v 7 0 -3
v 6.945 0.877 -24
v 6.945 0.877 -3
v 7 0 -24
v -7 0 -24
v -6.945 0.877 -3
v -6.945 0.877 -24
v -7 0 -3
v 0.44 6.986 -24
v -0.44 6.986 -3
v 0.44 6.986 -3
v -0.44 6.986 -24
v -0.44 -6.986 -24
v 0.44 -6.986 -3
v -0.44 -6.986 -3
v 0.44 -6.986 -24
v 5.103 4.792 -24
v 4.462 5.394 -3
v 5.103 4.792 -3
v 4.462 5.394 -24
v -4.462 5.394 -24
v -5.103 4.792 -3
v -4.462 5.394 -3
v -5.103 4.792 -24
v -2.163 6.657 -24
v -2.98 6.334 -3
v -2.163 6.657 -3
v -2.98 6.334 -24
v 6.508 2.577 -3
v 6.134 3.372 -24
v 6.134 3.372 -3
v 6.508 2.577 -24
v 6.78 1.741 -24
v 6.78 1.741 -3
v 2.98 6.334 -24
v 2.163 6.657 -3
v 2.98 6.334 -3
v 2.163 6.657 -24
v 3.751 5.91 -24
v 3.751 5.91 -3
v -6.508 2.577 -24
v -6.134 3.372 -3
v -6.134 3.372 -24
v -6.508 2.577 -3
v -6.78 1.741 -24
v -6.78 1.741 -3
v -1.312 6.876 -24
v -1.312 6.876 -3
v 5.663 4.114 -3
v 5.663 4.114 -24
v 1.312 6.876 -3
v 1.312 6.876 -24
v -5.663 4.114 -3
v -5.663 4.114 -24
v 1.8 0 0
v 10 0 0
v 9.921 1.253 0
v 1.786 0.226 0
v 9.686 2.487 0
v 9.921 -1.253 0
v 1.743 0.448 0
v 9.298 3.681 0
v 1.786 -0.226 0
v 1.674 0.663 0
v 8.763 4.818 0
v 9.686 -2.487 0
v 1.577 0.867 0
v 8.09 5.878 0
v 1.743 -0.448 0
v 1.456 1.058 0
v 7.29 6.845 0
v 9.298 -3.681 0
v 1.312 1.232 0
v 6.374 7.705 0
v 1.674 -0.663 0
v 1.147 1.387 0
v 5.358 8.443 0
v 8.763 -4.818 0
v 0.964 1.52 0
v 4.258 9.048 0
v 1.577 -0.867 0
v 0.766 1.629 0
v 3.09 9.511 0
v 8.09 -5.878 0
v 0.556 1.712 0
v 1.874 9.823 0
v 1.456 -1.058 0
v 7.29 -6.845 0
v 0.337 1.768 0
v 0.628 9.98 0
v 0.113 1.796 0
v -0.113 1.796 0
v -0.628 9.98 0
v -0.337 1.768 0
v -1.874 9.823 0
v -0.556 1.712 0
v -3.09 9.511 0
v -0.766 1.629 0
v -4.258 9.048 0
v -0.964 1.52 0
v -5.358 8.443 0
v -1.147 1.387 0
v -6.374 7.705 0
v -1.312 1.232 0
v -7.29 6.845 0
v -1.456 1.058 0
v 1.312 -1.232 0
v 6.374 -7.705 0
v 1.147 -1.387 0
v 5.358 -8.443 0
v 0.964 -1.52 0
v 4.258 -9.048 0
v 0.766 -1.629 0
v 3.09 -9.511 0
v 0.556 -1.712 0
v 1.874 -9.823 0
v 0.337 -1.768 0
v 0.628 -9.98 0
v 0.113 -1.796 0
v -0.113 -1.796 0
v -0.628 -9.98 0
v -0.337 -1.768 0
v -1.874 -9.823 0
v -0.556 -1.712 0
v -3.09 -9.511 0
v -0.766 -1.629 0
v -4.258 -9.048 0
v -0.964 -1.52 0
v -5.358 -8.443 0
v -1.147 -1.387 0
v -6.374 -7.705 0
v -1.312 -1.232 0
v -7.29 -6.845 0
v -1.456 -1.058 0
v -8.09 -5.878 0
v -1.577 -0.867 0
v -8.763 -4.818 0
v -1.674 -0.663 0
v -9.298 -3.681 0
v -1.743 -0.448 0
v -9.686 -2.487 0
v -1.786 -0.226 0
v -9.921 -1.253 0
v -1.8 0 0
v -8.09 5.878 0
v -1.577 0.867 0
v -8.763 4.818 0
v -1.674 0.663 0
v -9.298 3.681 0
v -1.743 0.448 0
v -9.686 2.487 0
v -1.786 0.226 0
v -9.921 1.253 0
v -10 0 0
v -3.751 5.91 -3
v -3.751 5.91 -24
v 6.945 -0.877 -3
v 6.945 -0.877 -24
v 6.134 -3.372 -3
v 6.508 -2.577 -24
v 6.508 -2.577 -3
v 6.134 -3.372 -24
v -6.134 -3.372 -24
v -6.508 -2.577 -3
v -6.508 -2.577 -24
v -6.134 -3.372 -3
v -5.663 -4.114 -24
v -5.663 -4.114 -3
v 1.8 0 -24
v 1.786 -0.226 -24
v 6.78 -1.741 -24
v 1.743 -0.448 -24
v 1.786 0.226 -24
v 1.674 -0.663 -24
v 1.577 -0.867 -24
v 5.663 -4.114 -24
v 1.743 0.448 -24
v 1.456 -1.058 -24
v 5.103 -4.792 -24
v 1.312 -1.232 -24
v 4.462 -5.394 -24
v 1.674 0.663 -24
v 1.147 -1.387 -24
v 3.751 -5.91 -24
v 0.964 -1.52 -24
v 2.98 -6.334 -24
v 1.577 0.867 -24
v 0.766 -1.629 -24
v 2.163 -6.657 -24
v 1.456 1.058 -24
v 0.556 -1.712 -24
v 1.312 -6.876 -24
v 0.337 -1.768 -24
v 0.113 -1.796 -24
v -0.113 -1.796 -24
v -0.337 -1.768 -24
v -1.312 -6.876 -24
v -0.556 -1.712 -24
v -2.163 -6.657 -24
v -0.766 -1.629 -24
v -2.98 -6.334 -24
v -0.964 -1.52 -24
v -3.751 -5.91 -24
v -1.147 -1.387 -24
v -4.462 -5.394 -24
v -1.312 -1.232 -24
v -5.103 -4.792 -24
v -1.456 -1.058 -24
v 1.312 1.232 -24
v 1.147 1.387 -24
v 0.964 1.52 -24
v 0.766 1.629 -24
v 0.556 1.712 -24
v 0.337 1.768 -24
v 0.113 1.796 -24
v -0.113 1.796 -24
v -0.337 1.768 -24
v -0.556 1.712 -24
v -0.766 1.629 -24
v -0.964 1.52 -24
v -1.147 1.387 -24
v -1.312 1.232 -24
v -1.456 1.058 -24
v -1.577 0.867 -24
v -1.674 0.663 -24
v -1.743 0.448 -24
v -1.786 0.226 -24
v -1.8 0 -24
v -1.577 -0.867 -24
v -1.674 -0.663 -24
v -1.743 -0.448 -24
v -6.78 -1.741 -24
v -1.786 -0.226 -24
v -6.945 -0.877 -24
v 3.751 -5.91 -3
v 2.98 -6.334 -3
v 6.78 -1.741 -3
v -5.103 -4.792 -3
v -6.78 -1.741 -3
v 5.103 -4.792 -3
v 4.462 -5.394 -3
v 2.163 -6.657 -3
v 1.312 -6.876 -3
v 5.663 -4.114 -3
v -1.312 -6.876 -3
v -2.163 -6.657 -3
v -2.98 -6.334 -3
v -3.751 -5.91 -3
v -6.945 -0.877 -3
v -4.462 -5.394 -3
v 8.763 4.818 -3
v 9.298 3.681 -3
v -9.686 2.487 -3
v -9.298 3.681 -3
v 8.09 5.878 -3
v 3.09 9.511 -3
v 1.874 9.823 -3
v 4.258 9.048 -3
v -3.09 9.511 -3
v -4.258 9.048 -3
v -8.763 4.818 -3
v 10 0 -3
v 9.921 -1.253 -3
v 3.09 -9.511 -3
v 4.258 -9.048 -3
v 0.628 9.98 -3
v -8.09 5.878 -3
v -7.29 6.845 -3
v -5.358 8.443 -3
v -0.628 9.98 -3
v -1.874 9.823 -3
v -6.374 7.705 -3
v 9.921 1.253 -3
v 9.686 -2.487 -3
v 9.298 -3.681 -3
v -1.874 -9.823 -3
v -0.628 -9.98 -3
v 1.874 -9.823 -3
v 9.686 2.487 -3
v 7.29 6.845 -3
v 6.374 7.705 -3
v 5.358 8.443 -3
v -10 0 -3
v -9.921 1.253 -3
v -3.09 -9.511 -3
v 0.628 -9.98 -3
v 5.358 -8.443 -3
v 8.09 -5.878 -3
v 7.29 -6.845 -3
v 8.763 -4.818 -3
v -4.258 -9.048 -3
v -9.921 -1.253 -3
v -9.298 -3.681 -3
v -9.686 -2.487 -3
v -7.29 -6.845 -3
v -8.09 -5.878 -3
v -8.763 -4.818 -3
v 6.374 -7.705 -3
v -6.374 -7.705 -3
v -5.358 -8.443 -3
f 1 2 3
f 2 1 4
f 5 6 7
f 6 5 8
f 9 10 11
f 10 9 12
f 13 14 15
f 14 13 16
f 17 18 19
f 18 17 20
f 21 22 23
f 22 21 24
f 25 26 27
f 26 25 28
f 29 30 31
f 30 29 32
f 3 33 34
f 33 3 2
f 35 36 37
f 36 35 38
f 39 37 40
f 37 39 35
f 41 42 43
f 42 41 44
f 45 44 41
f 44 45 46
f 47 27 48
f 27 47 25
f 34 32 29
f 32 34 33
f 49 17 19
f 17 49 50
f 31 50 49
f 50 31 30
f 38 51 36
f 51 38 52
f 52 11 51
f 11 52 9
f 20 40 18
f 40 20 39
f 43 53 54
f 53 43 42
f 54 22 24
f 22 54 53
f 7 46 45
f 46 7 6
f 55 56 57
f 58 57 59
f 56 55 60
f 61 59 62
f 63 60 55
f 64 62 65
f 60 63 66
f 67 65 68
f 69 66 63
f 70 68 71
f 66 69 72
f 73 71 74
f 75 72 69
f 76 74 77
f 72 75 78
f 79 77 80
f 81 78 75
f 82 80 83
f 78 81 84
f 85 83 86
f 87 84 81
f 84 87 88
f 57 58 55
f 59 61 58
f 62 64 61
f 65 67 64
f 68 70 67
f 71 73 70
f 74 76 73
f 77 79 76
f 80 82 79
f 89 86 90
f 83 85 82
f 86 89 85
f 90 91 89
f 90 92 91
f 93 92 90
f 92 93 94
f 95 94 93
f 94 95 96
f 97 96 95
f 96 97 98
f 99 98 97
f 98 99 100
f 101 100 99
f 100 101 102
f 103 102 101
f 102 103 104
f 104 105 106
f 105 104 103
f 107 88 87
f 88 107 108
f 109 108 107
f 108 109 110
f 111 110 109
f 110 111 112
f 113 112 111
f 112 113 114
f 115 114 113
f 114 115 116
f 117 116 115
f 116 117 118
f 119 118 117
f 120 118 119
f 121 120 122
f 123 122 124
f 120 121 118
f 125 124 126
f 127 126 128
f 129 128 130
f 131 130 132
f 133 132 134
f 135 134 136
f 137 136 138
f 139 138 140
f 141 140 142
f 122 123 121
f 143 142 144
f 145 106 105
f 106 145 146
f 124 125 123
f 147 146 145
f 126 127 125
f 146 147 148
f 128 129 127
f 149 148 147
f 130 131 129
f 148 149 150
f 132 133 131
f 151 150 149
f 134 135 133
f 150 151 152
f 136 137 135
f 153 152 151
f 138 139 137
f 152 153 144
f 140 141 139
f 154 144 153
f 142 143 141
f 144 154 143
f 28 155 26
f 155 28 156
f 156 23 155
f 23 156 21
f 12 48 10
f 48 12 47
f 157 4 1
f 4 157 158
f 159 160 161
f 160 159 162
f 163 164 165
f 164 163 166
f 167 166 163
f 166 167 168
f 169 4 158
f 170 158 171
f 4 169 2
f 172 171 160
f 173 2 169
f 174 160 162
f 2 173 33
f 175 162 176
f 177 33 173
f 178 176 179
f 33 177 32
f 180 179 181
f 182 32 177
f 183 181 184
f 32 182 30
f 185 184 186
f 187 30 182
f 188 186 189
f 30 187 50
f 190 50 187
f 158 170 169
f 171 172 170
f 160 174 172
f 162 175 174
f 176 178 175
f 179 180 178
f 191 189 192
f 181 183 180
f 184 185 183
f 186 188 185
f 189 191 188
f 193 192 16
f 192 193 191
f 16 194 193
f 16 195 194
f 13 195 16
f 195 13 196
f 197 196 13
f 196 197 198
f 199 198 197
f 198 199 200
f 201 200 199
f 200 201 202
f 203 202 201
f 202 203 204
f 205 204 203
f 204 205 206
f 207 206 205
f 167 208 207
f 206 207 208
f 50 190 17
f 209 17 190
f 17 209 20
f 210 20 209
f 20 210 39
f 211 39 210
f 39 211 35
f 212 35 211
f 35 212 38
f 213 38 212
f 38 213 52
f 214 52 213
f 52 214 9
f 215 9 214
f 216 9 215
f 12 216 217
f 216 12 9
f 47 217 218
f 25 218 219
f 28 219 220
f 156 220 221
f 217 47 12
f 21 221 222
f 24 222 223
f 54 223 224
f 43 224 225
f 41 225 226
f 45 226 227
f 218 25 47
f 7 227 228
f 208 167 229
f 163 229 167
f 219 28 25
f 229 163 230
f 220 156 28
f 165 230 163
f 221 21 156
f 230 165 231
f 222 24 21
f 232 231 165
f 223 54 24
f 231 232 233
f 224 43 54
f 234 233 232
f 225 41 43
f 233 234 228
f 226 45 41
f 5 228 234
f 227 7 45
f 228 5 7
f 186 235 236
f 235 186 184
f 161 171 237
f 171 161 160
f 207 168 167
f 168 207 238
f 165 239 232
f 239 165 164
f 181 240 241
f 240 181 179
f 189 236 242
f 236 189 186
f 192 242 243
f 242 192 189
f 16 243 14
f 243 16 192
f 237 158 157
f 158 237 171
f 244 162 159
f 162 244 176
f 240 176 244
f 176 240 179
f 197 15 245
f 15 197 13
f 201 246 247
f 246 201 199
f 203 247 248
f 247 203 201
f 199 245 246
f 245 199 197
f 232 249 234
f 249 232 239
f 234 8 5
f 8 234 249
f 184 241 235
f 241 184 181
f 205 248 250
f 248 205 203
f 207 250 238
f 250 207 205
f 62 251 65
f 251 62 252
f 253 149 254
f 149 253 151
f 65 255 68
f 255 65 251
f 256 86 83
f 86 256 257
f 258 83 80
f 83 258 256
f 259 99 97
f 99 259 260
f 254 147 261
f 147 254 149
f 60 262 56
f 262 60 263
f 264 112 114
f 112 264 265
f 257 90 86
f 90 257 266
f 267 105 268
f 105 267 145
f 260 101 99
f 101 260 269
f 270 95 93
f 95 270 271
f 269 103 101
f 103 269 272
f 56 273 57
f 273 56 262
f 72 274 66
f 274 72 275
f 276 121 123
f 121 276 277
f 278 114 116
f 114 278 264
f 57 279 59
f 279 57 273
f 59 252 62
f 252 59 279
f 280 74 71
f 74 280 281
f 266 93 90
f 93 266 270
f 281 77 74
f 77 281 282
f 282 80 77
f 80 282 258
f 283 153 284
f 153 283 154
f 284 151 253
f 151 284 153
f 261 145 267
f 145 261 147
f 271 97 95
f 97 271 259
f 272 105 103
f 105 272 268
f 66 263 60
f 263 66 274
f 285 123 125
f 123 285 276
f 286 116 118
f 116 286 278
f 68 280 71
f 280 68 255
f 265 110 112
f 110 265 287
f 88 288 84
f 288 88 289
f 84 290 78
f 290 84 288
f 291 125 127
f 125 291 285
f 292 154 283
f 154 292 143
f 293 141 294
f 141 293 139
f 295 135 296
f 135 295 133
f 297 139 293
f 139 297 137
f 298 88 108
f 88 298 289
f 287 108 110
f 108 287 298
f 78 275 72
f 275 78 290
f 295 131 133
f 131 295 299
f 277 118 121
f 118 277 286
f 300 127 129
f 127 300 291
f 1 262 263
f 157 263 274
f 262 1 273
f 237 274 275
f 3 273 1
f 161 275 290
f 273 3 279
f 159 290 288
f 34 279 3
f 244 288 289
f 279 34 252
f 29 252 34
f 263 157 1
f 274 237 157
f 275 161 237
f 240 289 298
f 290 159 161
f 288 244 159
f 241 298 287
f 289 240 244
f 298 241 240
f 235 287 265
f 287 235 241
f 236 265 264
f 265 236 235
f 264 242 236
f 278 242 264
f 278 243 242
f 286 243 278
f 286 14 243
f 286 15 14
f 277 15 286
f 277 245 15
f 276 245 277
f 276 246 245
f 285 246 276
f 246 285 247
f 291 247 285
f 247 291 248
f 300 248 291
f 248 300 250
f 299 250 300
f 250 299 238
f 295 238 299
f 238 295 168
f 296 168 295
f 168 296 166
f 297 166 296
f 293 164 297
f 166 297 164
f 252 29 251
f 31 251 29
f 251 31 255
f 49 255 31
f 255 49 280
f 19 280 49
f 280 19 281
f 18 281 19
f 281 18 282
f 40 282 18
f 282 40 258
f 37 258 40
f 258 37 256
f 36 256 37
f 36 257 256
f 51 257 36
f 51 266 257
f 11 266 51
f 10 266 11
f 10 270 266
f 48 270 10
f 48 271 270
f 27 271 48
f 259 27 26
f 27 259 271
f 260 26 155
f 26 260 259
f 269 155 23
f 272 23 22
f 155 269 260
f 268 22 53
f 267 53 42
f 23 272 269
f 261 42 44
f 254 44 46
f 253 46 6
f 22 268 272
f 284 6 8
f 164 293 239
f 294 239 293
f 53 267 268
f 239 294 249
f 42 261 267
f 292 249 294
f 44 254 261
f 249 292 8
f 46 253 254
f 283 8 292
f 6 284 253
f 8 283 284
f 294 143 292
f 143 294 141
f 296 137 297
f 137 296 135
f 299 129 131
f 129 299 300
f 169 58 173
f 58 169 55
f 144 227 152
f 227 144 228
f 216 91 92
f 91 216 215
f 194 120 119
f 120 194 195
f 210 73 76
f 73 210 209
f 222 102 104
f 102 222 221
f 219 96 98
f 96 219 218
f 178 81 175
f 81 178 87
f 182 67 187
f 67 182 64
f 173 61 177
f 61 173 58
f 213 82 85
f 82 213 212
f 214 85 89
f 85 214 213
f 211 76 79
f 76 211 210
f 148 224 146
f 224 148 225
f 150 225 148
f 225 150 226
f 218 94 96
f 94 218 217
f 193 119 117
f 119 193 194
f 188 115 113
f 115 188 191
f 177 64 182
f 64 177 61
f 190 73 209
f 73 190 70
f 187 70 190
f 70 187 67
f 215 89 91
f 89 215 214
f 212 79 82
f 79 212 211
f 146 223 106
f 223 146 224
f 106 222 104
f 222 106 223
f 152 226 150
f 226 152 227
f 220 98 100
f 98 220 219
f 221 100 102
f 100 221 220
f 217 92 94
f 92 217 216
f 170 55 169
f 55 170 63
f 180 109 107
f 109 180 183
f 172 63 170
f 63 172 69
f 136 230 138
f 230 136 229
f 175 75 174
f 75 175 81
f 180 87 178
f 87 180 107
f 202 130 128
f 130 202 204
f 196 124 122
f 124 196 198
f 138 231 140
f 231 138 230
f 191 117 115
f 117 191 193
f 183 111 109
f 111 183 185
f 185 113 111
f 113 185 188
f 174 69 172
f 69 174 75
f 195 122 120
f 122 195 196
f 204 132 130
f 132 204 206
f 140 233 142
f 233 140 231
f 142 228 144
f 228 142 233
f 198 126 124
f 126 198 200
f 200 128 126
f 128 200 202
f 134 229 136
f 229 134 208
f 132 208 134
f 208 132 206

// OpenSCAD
$fn = 50;


difference() {
	union() {
		translate(v = [0, 0, -24.0000000000]) {
			cylinder(h = 24, r = 7.0000000000);
		}
		translate(v = [0, 0, -3.0000000000]) {
			cylinder(h = 3, r = 10.0000000000);
		}
	}
	union() {
		#translate(v = [0, 0, -24]) {
			cylinder(h = 24, r = 1.8000000000);
		}
	}
}
